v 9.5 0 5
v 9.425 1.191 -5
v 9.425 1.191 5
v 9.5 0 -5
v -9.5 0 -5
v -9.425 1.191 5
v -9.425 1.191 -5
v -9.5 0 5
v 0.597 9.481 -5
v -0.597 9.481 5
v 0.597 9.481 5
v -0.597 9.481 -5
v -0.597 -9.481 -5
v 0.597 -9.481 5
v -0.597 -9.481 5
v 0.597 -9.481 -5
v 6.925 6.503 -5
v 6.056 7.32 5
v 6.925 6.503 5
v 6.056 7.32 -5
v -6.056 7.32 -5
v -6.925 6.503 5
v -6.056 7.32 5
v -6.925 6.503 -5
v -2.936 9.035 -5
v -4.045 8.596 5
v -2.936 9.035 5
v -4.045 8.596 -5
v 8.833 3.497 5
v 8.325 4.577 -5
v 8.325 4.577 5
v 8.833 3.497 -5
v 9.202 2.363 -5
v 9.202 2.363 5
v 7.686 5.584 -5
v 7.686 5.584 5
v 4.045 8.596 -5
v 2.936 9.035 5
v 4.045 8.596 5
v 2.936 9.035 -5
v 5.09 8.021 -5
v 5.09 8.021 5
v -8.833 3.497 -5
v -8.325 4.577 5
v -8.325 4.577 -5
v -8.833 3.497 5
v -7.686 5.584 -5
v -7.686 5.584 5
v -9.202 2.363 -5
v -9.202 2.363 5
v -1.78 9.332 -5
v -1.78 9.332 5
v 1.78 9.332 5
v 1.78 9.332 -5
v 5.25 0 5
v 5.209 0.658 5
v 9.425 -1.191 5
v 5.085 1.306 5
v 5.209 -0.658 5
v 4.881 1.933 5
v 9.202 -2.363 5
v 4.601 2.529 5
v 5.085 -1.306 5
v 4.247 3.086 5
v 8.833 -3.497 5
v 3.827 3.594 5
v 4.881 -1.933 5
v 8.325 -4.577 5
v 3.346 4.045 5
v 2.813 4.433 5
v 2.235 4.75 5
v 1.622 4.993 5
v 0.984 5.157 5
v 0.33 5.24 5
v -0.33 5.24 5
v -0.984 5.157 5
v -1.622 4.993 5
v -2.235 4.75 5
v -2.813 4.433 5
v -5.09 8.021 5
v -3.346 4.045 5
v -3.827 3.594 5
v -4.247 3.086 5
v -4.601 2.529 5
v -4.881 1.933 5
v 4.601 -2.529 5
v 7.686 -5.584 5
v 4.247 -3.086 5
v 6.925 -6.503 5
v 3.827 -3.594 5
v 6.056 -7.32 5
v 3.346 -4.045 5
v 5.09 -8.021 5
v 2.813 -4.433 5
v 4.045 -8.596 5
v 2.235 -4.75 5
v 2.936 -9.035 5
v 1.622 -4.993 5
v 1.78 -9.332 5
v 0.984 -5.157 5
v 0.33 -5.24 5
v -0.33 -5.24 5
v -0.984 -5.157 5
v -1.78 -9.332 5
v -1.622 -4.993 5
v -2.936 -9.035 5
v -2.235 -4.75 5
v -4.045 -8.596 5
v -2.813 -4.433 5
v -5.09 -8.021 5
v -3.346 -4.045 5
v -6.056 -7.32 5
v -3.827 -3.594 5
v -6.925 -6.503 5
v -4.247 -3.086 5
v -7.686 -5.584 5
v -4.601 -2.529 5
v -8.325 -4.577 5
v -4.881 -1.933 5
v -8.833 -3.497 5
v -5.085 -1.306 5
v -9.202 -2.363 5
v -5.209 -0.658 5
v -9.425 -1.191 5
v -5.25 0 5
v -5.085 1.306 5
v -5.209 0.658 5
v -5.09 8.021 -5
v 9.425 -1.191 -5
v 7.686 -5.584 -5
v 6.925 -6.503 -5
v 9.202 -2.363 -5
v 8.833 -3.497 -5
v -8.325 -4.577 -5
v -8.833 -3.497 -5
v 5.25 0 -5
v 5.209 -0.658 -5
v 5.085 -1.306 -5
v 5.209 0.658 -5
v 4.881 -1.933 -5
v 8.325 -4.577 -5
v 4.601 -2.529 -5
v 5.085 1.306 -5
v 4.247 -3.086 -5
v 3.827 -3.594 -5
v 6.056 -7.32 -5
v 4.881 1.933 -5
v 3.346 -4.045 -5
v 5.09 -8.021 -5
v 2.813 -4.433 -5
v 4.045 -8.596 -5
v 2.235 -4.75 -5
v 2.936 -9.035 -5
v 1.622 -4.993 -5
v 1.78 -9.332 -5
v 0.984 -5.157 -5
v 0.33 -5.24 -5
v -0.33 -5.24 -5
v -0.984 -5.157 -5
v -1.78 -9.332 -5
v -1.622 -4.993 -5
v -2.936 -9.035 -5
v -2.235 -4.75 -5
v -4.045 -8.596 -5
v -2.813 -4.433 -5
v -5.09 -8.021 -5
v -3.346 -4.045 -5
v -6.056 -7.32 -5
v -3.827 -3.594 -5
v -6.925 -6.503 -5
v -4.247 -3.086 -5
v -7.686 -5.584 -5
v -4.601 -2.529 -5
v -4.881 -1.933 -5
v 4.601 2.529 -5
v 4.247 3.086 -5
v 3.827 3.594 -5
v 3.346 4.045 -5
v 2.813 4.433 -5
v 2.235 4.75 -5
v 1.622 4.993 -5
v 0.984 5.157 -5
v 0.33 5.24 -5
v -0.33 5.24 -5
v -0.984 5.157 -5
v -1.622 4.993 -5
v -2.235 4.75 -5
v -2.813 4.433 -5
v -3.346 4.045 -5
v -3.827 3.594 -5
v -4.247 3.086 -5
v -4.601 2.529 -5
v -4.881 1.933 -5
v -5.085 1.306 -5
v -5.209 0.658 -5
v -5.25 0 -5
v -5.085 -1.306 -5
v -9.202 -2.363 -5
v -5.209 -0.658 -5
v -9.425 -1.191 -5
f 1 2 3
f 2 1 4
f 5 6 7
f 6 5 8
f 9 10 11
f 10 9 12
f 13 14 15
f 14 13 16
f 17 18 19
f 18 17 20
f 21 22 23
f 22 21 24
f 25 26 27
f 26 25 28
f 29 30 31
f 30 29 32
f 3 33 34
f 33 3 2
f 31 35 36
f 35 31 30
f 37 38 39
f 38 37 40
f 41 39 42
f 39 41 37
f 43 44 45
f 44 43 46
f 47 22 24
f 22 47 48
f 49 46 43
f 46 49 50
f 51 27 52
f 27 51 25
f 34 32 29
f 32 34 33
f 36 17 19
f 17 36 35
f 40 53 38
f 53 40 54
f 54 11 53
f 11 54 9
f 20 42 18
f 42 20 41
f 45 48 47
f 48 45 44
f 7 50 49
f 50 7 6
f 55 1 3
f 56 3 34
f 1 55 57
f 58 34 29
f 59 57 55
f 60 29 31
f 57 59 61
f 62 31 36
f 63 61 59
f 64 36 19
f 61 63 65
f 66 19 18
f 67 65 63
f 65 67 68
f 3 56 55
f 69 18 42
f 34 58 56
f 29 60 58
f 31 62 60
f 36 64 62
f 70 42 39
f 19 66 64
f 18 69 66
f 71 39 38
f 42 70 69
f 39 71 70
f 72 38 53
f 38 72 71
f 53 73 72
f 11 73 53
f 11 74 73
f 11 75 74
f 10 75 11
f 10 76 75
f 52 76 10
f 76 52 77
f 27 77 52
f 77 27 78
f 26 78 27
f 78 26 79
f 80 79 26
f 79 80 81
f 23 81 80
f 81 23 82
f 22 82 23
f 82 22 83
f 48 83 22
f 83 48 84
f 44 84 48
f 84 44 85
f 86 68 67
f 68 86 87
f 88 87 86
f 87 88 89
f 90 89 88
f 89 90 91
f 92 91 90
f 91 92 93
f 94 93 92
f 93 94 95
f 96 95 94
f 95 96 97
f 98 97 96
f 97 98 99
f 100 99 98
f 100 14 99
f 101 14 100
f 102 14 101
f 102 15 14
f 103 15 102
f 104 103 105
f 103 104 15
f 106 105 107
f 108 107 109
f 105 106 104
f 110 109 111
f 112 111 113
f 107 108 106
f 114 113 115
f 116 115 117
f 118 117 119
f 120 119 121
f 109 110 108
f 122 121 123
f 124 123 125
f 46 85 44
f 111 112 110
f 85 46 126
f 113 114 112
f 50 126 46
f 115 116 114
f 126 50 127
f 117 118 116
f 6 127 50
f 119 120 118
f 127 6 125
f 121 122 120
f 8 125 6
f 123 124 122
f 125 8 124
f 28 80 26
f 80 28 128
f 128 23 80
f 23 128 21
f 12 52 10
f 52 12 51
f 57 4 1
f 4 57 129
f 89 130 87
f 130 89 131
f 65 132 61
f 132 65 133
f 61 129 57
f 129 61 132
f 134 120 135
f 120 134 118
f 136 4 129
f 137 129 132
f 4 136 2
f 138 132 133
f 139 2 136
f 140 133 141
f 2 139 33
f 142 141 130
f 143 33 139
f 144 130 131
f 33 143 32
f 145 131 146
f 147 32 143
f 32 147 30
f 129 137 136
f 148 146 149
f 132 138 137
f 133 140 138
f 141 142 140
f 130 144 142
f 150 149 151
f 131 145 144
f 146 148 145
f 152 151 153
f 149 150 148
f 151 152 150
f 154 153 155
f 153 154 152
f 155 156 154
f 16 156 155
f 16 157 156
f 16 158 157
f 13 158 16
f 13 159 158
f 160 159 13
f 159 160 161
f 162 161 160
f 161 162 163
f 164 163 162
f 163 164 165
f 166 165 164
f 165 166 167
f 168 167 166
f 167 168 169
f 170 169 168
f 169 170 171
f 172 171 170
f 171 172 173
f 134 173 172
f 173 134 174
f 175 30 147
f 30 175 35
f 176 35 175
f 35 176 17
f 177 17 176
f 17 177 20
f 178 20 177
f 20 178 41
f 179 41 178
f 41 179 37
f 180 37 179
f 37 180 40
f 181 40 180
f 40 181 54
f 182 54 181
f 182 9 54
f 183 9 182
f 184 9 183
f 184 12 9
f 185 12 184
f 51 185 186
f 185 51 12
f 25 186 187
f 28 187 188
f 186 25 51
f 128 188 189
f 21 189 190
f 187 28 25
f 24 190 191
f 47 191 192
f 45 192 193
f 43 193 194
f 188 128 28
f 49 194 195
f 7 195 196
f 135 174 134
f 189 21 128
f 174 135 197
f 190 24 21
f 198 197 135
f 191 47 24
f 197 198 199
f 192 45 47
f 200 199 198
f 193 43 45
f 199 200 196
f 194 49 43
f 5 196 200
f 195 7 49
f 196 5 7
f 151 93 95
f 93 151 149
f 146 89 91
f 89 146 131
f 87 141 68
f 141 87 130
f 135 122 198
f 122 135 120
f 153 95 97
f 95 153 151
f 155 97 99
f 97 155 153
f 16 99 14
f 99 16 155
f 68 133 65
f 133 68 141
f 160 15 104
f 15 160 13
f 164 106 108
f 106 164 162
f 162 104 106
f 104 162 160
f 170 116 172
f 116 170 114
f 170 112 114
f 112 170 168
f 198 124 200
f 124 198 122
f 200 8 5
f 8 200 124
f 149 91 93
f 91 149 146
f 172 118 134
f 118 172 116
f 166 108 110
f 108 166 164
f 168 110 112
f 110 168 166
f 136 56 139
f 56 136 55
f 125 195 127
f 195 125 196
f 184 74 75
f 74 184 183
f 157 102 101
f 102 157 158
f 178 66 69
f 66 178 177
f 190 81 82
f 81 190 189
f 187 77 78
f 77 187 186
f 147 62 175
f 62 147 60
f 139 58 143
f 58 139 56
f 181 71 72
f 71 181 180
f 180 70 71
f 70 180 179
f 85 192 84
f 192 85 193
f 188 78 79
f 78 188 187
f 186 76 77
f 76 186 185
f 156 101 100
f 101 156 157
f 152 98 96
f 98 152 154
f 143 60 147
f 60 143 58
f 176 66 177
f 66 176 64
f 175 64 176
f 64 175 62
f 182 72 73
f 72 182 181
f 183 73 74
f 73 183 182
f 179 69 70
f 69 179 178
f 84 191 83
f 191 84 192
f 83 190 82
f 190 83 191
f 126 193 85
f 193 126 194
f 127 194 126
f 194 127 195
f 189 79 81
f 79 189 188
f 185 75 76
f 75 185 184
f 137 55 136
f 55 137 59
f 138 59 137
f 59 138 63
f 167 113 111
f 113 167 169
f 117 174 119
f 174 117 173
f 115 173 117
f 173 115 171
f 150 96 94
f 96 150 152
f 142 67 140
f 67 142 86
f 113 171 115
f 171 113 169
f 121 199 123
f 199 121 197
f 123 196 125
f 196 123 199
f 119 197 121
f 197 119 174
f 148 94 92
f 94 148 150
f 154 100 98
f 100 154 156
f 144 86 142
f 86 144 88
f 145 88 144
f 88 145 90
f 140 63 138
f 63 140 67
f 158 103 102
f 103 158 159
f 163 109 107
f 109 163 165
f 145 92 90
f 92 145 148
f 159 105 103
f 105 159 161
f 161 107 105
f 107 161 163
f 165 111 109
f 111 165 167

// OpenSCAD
$fn = 50;


difference() {
	union() {
		translate(v = [0, 0, -5.0000000000]) {
			cylinder(h = 10, r = 9.5000000000);
		}
	}
	union() {
		translate(v = [0, 0, -100.0000000000]) {
			cylinder(h = 200, r = 5.2500000000);
		}
	}
}
